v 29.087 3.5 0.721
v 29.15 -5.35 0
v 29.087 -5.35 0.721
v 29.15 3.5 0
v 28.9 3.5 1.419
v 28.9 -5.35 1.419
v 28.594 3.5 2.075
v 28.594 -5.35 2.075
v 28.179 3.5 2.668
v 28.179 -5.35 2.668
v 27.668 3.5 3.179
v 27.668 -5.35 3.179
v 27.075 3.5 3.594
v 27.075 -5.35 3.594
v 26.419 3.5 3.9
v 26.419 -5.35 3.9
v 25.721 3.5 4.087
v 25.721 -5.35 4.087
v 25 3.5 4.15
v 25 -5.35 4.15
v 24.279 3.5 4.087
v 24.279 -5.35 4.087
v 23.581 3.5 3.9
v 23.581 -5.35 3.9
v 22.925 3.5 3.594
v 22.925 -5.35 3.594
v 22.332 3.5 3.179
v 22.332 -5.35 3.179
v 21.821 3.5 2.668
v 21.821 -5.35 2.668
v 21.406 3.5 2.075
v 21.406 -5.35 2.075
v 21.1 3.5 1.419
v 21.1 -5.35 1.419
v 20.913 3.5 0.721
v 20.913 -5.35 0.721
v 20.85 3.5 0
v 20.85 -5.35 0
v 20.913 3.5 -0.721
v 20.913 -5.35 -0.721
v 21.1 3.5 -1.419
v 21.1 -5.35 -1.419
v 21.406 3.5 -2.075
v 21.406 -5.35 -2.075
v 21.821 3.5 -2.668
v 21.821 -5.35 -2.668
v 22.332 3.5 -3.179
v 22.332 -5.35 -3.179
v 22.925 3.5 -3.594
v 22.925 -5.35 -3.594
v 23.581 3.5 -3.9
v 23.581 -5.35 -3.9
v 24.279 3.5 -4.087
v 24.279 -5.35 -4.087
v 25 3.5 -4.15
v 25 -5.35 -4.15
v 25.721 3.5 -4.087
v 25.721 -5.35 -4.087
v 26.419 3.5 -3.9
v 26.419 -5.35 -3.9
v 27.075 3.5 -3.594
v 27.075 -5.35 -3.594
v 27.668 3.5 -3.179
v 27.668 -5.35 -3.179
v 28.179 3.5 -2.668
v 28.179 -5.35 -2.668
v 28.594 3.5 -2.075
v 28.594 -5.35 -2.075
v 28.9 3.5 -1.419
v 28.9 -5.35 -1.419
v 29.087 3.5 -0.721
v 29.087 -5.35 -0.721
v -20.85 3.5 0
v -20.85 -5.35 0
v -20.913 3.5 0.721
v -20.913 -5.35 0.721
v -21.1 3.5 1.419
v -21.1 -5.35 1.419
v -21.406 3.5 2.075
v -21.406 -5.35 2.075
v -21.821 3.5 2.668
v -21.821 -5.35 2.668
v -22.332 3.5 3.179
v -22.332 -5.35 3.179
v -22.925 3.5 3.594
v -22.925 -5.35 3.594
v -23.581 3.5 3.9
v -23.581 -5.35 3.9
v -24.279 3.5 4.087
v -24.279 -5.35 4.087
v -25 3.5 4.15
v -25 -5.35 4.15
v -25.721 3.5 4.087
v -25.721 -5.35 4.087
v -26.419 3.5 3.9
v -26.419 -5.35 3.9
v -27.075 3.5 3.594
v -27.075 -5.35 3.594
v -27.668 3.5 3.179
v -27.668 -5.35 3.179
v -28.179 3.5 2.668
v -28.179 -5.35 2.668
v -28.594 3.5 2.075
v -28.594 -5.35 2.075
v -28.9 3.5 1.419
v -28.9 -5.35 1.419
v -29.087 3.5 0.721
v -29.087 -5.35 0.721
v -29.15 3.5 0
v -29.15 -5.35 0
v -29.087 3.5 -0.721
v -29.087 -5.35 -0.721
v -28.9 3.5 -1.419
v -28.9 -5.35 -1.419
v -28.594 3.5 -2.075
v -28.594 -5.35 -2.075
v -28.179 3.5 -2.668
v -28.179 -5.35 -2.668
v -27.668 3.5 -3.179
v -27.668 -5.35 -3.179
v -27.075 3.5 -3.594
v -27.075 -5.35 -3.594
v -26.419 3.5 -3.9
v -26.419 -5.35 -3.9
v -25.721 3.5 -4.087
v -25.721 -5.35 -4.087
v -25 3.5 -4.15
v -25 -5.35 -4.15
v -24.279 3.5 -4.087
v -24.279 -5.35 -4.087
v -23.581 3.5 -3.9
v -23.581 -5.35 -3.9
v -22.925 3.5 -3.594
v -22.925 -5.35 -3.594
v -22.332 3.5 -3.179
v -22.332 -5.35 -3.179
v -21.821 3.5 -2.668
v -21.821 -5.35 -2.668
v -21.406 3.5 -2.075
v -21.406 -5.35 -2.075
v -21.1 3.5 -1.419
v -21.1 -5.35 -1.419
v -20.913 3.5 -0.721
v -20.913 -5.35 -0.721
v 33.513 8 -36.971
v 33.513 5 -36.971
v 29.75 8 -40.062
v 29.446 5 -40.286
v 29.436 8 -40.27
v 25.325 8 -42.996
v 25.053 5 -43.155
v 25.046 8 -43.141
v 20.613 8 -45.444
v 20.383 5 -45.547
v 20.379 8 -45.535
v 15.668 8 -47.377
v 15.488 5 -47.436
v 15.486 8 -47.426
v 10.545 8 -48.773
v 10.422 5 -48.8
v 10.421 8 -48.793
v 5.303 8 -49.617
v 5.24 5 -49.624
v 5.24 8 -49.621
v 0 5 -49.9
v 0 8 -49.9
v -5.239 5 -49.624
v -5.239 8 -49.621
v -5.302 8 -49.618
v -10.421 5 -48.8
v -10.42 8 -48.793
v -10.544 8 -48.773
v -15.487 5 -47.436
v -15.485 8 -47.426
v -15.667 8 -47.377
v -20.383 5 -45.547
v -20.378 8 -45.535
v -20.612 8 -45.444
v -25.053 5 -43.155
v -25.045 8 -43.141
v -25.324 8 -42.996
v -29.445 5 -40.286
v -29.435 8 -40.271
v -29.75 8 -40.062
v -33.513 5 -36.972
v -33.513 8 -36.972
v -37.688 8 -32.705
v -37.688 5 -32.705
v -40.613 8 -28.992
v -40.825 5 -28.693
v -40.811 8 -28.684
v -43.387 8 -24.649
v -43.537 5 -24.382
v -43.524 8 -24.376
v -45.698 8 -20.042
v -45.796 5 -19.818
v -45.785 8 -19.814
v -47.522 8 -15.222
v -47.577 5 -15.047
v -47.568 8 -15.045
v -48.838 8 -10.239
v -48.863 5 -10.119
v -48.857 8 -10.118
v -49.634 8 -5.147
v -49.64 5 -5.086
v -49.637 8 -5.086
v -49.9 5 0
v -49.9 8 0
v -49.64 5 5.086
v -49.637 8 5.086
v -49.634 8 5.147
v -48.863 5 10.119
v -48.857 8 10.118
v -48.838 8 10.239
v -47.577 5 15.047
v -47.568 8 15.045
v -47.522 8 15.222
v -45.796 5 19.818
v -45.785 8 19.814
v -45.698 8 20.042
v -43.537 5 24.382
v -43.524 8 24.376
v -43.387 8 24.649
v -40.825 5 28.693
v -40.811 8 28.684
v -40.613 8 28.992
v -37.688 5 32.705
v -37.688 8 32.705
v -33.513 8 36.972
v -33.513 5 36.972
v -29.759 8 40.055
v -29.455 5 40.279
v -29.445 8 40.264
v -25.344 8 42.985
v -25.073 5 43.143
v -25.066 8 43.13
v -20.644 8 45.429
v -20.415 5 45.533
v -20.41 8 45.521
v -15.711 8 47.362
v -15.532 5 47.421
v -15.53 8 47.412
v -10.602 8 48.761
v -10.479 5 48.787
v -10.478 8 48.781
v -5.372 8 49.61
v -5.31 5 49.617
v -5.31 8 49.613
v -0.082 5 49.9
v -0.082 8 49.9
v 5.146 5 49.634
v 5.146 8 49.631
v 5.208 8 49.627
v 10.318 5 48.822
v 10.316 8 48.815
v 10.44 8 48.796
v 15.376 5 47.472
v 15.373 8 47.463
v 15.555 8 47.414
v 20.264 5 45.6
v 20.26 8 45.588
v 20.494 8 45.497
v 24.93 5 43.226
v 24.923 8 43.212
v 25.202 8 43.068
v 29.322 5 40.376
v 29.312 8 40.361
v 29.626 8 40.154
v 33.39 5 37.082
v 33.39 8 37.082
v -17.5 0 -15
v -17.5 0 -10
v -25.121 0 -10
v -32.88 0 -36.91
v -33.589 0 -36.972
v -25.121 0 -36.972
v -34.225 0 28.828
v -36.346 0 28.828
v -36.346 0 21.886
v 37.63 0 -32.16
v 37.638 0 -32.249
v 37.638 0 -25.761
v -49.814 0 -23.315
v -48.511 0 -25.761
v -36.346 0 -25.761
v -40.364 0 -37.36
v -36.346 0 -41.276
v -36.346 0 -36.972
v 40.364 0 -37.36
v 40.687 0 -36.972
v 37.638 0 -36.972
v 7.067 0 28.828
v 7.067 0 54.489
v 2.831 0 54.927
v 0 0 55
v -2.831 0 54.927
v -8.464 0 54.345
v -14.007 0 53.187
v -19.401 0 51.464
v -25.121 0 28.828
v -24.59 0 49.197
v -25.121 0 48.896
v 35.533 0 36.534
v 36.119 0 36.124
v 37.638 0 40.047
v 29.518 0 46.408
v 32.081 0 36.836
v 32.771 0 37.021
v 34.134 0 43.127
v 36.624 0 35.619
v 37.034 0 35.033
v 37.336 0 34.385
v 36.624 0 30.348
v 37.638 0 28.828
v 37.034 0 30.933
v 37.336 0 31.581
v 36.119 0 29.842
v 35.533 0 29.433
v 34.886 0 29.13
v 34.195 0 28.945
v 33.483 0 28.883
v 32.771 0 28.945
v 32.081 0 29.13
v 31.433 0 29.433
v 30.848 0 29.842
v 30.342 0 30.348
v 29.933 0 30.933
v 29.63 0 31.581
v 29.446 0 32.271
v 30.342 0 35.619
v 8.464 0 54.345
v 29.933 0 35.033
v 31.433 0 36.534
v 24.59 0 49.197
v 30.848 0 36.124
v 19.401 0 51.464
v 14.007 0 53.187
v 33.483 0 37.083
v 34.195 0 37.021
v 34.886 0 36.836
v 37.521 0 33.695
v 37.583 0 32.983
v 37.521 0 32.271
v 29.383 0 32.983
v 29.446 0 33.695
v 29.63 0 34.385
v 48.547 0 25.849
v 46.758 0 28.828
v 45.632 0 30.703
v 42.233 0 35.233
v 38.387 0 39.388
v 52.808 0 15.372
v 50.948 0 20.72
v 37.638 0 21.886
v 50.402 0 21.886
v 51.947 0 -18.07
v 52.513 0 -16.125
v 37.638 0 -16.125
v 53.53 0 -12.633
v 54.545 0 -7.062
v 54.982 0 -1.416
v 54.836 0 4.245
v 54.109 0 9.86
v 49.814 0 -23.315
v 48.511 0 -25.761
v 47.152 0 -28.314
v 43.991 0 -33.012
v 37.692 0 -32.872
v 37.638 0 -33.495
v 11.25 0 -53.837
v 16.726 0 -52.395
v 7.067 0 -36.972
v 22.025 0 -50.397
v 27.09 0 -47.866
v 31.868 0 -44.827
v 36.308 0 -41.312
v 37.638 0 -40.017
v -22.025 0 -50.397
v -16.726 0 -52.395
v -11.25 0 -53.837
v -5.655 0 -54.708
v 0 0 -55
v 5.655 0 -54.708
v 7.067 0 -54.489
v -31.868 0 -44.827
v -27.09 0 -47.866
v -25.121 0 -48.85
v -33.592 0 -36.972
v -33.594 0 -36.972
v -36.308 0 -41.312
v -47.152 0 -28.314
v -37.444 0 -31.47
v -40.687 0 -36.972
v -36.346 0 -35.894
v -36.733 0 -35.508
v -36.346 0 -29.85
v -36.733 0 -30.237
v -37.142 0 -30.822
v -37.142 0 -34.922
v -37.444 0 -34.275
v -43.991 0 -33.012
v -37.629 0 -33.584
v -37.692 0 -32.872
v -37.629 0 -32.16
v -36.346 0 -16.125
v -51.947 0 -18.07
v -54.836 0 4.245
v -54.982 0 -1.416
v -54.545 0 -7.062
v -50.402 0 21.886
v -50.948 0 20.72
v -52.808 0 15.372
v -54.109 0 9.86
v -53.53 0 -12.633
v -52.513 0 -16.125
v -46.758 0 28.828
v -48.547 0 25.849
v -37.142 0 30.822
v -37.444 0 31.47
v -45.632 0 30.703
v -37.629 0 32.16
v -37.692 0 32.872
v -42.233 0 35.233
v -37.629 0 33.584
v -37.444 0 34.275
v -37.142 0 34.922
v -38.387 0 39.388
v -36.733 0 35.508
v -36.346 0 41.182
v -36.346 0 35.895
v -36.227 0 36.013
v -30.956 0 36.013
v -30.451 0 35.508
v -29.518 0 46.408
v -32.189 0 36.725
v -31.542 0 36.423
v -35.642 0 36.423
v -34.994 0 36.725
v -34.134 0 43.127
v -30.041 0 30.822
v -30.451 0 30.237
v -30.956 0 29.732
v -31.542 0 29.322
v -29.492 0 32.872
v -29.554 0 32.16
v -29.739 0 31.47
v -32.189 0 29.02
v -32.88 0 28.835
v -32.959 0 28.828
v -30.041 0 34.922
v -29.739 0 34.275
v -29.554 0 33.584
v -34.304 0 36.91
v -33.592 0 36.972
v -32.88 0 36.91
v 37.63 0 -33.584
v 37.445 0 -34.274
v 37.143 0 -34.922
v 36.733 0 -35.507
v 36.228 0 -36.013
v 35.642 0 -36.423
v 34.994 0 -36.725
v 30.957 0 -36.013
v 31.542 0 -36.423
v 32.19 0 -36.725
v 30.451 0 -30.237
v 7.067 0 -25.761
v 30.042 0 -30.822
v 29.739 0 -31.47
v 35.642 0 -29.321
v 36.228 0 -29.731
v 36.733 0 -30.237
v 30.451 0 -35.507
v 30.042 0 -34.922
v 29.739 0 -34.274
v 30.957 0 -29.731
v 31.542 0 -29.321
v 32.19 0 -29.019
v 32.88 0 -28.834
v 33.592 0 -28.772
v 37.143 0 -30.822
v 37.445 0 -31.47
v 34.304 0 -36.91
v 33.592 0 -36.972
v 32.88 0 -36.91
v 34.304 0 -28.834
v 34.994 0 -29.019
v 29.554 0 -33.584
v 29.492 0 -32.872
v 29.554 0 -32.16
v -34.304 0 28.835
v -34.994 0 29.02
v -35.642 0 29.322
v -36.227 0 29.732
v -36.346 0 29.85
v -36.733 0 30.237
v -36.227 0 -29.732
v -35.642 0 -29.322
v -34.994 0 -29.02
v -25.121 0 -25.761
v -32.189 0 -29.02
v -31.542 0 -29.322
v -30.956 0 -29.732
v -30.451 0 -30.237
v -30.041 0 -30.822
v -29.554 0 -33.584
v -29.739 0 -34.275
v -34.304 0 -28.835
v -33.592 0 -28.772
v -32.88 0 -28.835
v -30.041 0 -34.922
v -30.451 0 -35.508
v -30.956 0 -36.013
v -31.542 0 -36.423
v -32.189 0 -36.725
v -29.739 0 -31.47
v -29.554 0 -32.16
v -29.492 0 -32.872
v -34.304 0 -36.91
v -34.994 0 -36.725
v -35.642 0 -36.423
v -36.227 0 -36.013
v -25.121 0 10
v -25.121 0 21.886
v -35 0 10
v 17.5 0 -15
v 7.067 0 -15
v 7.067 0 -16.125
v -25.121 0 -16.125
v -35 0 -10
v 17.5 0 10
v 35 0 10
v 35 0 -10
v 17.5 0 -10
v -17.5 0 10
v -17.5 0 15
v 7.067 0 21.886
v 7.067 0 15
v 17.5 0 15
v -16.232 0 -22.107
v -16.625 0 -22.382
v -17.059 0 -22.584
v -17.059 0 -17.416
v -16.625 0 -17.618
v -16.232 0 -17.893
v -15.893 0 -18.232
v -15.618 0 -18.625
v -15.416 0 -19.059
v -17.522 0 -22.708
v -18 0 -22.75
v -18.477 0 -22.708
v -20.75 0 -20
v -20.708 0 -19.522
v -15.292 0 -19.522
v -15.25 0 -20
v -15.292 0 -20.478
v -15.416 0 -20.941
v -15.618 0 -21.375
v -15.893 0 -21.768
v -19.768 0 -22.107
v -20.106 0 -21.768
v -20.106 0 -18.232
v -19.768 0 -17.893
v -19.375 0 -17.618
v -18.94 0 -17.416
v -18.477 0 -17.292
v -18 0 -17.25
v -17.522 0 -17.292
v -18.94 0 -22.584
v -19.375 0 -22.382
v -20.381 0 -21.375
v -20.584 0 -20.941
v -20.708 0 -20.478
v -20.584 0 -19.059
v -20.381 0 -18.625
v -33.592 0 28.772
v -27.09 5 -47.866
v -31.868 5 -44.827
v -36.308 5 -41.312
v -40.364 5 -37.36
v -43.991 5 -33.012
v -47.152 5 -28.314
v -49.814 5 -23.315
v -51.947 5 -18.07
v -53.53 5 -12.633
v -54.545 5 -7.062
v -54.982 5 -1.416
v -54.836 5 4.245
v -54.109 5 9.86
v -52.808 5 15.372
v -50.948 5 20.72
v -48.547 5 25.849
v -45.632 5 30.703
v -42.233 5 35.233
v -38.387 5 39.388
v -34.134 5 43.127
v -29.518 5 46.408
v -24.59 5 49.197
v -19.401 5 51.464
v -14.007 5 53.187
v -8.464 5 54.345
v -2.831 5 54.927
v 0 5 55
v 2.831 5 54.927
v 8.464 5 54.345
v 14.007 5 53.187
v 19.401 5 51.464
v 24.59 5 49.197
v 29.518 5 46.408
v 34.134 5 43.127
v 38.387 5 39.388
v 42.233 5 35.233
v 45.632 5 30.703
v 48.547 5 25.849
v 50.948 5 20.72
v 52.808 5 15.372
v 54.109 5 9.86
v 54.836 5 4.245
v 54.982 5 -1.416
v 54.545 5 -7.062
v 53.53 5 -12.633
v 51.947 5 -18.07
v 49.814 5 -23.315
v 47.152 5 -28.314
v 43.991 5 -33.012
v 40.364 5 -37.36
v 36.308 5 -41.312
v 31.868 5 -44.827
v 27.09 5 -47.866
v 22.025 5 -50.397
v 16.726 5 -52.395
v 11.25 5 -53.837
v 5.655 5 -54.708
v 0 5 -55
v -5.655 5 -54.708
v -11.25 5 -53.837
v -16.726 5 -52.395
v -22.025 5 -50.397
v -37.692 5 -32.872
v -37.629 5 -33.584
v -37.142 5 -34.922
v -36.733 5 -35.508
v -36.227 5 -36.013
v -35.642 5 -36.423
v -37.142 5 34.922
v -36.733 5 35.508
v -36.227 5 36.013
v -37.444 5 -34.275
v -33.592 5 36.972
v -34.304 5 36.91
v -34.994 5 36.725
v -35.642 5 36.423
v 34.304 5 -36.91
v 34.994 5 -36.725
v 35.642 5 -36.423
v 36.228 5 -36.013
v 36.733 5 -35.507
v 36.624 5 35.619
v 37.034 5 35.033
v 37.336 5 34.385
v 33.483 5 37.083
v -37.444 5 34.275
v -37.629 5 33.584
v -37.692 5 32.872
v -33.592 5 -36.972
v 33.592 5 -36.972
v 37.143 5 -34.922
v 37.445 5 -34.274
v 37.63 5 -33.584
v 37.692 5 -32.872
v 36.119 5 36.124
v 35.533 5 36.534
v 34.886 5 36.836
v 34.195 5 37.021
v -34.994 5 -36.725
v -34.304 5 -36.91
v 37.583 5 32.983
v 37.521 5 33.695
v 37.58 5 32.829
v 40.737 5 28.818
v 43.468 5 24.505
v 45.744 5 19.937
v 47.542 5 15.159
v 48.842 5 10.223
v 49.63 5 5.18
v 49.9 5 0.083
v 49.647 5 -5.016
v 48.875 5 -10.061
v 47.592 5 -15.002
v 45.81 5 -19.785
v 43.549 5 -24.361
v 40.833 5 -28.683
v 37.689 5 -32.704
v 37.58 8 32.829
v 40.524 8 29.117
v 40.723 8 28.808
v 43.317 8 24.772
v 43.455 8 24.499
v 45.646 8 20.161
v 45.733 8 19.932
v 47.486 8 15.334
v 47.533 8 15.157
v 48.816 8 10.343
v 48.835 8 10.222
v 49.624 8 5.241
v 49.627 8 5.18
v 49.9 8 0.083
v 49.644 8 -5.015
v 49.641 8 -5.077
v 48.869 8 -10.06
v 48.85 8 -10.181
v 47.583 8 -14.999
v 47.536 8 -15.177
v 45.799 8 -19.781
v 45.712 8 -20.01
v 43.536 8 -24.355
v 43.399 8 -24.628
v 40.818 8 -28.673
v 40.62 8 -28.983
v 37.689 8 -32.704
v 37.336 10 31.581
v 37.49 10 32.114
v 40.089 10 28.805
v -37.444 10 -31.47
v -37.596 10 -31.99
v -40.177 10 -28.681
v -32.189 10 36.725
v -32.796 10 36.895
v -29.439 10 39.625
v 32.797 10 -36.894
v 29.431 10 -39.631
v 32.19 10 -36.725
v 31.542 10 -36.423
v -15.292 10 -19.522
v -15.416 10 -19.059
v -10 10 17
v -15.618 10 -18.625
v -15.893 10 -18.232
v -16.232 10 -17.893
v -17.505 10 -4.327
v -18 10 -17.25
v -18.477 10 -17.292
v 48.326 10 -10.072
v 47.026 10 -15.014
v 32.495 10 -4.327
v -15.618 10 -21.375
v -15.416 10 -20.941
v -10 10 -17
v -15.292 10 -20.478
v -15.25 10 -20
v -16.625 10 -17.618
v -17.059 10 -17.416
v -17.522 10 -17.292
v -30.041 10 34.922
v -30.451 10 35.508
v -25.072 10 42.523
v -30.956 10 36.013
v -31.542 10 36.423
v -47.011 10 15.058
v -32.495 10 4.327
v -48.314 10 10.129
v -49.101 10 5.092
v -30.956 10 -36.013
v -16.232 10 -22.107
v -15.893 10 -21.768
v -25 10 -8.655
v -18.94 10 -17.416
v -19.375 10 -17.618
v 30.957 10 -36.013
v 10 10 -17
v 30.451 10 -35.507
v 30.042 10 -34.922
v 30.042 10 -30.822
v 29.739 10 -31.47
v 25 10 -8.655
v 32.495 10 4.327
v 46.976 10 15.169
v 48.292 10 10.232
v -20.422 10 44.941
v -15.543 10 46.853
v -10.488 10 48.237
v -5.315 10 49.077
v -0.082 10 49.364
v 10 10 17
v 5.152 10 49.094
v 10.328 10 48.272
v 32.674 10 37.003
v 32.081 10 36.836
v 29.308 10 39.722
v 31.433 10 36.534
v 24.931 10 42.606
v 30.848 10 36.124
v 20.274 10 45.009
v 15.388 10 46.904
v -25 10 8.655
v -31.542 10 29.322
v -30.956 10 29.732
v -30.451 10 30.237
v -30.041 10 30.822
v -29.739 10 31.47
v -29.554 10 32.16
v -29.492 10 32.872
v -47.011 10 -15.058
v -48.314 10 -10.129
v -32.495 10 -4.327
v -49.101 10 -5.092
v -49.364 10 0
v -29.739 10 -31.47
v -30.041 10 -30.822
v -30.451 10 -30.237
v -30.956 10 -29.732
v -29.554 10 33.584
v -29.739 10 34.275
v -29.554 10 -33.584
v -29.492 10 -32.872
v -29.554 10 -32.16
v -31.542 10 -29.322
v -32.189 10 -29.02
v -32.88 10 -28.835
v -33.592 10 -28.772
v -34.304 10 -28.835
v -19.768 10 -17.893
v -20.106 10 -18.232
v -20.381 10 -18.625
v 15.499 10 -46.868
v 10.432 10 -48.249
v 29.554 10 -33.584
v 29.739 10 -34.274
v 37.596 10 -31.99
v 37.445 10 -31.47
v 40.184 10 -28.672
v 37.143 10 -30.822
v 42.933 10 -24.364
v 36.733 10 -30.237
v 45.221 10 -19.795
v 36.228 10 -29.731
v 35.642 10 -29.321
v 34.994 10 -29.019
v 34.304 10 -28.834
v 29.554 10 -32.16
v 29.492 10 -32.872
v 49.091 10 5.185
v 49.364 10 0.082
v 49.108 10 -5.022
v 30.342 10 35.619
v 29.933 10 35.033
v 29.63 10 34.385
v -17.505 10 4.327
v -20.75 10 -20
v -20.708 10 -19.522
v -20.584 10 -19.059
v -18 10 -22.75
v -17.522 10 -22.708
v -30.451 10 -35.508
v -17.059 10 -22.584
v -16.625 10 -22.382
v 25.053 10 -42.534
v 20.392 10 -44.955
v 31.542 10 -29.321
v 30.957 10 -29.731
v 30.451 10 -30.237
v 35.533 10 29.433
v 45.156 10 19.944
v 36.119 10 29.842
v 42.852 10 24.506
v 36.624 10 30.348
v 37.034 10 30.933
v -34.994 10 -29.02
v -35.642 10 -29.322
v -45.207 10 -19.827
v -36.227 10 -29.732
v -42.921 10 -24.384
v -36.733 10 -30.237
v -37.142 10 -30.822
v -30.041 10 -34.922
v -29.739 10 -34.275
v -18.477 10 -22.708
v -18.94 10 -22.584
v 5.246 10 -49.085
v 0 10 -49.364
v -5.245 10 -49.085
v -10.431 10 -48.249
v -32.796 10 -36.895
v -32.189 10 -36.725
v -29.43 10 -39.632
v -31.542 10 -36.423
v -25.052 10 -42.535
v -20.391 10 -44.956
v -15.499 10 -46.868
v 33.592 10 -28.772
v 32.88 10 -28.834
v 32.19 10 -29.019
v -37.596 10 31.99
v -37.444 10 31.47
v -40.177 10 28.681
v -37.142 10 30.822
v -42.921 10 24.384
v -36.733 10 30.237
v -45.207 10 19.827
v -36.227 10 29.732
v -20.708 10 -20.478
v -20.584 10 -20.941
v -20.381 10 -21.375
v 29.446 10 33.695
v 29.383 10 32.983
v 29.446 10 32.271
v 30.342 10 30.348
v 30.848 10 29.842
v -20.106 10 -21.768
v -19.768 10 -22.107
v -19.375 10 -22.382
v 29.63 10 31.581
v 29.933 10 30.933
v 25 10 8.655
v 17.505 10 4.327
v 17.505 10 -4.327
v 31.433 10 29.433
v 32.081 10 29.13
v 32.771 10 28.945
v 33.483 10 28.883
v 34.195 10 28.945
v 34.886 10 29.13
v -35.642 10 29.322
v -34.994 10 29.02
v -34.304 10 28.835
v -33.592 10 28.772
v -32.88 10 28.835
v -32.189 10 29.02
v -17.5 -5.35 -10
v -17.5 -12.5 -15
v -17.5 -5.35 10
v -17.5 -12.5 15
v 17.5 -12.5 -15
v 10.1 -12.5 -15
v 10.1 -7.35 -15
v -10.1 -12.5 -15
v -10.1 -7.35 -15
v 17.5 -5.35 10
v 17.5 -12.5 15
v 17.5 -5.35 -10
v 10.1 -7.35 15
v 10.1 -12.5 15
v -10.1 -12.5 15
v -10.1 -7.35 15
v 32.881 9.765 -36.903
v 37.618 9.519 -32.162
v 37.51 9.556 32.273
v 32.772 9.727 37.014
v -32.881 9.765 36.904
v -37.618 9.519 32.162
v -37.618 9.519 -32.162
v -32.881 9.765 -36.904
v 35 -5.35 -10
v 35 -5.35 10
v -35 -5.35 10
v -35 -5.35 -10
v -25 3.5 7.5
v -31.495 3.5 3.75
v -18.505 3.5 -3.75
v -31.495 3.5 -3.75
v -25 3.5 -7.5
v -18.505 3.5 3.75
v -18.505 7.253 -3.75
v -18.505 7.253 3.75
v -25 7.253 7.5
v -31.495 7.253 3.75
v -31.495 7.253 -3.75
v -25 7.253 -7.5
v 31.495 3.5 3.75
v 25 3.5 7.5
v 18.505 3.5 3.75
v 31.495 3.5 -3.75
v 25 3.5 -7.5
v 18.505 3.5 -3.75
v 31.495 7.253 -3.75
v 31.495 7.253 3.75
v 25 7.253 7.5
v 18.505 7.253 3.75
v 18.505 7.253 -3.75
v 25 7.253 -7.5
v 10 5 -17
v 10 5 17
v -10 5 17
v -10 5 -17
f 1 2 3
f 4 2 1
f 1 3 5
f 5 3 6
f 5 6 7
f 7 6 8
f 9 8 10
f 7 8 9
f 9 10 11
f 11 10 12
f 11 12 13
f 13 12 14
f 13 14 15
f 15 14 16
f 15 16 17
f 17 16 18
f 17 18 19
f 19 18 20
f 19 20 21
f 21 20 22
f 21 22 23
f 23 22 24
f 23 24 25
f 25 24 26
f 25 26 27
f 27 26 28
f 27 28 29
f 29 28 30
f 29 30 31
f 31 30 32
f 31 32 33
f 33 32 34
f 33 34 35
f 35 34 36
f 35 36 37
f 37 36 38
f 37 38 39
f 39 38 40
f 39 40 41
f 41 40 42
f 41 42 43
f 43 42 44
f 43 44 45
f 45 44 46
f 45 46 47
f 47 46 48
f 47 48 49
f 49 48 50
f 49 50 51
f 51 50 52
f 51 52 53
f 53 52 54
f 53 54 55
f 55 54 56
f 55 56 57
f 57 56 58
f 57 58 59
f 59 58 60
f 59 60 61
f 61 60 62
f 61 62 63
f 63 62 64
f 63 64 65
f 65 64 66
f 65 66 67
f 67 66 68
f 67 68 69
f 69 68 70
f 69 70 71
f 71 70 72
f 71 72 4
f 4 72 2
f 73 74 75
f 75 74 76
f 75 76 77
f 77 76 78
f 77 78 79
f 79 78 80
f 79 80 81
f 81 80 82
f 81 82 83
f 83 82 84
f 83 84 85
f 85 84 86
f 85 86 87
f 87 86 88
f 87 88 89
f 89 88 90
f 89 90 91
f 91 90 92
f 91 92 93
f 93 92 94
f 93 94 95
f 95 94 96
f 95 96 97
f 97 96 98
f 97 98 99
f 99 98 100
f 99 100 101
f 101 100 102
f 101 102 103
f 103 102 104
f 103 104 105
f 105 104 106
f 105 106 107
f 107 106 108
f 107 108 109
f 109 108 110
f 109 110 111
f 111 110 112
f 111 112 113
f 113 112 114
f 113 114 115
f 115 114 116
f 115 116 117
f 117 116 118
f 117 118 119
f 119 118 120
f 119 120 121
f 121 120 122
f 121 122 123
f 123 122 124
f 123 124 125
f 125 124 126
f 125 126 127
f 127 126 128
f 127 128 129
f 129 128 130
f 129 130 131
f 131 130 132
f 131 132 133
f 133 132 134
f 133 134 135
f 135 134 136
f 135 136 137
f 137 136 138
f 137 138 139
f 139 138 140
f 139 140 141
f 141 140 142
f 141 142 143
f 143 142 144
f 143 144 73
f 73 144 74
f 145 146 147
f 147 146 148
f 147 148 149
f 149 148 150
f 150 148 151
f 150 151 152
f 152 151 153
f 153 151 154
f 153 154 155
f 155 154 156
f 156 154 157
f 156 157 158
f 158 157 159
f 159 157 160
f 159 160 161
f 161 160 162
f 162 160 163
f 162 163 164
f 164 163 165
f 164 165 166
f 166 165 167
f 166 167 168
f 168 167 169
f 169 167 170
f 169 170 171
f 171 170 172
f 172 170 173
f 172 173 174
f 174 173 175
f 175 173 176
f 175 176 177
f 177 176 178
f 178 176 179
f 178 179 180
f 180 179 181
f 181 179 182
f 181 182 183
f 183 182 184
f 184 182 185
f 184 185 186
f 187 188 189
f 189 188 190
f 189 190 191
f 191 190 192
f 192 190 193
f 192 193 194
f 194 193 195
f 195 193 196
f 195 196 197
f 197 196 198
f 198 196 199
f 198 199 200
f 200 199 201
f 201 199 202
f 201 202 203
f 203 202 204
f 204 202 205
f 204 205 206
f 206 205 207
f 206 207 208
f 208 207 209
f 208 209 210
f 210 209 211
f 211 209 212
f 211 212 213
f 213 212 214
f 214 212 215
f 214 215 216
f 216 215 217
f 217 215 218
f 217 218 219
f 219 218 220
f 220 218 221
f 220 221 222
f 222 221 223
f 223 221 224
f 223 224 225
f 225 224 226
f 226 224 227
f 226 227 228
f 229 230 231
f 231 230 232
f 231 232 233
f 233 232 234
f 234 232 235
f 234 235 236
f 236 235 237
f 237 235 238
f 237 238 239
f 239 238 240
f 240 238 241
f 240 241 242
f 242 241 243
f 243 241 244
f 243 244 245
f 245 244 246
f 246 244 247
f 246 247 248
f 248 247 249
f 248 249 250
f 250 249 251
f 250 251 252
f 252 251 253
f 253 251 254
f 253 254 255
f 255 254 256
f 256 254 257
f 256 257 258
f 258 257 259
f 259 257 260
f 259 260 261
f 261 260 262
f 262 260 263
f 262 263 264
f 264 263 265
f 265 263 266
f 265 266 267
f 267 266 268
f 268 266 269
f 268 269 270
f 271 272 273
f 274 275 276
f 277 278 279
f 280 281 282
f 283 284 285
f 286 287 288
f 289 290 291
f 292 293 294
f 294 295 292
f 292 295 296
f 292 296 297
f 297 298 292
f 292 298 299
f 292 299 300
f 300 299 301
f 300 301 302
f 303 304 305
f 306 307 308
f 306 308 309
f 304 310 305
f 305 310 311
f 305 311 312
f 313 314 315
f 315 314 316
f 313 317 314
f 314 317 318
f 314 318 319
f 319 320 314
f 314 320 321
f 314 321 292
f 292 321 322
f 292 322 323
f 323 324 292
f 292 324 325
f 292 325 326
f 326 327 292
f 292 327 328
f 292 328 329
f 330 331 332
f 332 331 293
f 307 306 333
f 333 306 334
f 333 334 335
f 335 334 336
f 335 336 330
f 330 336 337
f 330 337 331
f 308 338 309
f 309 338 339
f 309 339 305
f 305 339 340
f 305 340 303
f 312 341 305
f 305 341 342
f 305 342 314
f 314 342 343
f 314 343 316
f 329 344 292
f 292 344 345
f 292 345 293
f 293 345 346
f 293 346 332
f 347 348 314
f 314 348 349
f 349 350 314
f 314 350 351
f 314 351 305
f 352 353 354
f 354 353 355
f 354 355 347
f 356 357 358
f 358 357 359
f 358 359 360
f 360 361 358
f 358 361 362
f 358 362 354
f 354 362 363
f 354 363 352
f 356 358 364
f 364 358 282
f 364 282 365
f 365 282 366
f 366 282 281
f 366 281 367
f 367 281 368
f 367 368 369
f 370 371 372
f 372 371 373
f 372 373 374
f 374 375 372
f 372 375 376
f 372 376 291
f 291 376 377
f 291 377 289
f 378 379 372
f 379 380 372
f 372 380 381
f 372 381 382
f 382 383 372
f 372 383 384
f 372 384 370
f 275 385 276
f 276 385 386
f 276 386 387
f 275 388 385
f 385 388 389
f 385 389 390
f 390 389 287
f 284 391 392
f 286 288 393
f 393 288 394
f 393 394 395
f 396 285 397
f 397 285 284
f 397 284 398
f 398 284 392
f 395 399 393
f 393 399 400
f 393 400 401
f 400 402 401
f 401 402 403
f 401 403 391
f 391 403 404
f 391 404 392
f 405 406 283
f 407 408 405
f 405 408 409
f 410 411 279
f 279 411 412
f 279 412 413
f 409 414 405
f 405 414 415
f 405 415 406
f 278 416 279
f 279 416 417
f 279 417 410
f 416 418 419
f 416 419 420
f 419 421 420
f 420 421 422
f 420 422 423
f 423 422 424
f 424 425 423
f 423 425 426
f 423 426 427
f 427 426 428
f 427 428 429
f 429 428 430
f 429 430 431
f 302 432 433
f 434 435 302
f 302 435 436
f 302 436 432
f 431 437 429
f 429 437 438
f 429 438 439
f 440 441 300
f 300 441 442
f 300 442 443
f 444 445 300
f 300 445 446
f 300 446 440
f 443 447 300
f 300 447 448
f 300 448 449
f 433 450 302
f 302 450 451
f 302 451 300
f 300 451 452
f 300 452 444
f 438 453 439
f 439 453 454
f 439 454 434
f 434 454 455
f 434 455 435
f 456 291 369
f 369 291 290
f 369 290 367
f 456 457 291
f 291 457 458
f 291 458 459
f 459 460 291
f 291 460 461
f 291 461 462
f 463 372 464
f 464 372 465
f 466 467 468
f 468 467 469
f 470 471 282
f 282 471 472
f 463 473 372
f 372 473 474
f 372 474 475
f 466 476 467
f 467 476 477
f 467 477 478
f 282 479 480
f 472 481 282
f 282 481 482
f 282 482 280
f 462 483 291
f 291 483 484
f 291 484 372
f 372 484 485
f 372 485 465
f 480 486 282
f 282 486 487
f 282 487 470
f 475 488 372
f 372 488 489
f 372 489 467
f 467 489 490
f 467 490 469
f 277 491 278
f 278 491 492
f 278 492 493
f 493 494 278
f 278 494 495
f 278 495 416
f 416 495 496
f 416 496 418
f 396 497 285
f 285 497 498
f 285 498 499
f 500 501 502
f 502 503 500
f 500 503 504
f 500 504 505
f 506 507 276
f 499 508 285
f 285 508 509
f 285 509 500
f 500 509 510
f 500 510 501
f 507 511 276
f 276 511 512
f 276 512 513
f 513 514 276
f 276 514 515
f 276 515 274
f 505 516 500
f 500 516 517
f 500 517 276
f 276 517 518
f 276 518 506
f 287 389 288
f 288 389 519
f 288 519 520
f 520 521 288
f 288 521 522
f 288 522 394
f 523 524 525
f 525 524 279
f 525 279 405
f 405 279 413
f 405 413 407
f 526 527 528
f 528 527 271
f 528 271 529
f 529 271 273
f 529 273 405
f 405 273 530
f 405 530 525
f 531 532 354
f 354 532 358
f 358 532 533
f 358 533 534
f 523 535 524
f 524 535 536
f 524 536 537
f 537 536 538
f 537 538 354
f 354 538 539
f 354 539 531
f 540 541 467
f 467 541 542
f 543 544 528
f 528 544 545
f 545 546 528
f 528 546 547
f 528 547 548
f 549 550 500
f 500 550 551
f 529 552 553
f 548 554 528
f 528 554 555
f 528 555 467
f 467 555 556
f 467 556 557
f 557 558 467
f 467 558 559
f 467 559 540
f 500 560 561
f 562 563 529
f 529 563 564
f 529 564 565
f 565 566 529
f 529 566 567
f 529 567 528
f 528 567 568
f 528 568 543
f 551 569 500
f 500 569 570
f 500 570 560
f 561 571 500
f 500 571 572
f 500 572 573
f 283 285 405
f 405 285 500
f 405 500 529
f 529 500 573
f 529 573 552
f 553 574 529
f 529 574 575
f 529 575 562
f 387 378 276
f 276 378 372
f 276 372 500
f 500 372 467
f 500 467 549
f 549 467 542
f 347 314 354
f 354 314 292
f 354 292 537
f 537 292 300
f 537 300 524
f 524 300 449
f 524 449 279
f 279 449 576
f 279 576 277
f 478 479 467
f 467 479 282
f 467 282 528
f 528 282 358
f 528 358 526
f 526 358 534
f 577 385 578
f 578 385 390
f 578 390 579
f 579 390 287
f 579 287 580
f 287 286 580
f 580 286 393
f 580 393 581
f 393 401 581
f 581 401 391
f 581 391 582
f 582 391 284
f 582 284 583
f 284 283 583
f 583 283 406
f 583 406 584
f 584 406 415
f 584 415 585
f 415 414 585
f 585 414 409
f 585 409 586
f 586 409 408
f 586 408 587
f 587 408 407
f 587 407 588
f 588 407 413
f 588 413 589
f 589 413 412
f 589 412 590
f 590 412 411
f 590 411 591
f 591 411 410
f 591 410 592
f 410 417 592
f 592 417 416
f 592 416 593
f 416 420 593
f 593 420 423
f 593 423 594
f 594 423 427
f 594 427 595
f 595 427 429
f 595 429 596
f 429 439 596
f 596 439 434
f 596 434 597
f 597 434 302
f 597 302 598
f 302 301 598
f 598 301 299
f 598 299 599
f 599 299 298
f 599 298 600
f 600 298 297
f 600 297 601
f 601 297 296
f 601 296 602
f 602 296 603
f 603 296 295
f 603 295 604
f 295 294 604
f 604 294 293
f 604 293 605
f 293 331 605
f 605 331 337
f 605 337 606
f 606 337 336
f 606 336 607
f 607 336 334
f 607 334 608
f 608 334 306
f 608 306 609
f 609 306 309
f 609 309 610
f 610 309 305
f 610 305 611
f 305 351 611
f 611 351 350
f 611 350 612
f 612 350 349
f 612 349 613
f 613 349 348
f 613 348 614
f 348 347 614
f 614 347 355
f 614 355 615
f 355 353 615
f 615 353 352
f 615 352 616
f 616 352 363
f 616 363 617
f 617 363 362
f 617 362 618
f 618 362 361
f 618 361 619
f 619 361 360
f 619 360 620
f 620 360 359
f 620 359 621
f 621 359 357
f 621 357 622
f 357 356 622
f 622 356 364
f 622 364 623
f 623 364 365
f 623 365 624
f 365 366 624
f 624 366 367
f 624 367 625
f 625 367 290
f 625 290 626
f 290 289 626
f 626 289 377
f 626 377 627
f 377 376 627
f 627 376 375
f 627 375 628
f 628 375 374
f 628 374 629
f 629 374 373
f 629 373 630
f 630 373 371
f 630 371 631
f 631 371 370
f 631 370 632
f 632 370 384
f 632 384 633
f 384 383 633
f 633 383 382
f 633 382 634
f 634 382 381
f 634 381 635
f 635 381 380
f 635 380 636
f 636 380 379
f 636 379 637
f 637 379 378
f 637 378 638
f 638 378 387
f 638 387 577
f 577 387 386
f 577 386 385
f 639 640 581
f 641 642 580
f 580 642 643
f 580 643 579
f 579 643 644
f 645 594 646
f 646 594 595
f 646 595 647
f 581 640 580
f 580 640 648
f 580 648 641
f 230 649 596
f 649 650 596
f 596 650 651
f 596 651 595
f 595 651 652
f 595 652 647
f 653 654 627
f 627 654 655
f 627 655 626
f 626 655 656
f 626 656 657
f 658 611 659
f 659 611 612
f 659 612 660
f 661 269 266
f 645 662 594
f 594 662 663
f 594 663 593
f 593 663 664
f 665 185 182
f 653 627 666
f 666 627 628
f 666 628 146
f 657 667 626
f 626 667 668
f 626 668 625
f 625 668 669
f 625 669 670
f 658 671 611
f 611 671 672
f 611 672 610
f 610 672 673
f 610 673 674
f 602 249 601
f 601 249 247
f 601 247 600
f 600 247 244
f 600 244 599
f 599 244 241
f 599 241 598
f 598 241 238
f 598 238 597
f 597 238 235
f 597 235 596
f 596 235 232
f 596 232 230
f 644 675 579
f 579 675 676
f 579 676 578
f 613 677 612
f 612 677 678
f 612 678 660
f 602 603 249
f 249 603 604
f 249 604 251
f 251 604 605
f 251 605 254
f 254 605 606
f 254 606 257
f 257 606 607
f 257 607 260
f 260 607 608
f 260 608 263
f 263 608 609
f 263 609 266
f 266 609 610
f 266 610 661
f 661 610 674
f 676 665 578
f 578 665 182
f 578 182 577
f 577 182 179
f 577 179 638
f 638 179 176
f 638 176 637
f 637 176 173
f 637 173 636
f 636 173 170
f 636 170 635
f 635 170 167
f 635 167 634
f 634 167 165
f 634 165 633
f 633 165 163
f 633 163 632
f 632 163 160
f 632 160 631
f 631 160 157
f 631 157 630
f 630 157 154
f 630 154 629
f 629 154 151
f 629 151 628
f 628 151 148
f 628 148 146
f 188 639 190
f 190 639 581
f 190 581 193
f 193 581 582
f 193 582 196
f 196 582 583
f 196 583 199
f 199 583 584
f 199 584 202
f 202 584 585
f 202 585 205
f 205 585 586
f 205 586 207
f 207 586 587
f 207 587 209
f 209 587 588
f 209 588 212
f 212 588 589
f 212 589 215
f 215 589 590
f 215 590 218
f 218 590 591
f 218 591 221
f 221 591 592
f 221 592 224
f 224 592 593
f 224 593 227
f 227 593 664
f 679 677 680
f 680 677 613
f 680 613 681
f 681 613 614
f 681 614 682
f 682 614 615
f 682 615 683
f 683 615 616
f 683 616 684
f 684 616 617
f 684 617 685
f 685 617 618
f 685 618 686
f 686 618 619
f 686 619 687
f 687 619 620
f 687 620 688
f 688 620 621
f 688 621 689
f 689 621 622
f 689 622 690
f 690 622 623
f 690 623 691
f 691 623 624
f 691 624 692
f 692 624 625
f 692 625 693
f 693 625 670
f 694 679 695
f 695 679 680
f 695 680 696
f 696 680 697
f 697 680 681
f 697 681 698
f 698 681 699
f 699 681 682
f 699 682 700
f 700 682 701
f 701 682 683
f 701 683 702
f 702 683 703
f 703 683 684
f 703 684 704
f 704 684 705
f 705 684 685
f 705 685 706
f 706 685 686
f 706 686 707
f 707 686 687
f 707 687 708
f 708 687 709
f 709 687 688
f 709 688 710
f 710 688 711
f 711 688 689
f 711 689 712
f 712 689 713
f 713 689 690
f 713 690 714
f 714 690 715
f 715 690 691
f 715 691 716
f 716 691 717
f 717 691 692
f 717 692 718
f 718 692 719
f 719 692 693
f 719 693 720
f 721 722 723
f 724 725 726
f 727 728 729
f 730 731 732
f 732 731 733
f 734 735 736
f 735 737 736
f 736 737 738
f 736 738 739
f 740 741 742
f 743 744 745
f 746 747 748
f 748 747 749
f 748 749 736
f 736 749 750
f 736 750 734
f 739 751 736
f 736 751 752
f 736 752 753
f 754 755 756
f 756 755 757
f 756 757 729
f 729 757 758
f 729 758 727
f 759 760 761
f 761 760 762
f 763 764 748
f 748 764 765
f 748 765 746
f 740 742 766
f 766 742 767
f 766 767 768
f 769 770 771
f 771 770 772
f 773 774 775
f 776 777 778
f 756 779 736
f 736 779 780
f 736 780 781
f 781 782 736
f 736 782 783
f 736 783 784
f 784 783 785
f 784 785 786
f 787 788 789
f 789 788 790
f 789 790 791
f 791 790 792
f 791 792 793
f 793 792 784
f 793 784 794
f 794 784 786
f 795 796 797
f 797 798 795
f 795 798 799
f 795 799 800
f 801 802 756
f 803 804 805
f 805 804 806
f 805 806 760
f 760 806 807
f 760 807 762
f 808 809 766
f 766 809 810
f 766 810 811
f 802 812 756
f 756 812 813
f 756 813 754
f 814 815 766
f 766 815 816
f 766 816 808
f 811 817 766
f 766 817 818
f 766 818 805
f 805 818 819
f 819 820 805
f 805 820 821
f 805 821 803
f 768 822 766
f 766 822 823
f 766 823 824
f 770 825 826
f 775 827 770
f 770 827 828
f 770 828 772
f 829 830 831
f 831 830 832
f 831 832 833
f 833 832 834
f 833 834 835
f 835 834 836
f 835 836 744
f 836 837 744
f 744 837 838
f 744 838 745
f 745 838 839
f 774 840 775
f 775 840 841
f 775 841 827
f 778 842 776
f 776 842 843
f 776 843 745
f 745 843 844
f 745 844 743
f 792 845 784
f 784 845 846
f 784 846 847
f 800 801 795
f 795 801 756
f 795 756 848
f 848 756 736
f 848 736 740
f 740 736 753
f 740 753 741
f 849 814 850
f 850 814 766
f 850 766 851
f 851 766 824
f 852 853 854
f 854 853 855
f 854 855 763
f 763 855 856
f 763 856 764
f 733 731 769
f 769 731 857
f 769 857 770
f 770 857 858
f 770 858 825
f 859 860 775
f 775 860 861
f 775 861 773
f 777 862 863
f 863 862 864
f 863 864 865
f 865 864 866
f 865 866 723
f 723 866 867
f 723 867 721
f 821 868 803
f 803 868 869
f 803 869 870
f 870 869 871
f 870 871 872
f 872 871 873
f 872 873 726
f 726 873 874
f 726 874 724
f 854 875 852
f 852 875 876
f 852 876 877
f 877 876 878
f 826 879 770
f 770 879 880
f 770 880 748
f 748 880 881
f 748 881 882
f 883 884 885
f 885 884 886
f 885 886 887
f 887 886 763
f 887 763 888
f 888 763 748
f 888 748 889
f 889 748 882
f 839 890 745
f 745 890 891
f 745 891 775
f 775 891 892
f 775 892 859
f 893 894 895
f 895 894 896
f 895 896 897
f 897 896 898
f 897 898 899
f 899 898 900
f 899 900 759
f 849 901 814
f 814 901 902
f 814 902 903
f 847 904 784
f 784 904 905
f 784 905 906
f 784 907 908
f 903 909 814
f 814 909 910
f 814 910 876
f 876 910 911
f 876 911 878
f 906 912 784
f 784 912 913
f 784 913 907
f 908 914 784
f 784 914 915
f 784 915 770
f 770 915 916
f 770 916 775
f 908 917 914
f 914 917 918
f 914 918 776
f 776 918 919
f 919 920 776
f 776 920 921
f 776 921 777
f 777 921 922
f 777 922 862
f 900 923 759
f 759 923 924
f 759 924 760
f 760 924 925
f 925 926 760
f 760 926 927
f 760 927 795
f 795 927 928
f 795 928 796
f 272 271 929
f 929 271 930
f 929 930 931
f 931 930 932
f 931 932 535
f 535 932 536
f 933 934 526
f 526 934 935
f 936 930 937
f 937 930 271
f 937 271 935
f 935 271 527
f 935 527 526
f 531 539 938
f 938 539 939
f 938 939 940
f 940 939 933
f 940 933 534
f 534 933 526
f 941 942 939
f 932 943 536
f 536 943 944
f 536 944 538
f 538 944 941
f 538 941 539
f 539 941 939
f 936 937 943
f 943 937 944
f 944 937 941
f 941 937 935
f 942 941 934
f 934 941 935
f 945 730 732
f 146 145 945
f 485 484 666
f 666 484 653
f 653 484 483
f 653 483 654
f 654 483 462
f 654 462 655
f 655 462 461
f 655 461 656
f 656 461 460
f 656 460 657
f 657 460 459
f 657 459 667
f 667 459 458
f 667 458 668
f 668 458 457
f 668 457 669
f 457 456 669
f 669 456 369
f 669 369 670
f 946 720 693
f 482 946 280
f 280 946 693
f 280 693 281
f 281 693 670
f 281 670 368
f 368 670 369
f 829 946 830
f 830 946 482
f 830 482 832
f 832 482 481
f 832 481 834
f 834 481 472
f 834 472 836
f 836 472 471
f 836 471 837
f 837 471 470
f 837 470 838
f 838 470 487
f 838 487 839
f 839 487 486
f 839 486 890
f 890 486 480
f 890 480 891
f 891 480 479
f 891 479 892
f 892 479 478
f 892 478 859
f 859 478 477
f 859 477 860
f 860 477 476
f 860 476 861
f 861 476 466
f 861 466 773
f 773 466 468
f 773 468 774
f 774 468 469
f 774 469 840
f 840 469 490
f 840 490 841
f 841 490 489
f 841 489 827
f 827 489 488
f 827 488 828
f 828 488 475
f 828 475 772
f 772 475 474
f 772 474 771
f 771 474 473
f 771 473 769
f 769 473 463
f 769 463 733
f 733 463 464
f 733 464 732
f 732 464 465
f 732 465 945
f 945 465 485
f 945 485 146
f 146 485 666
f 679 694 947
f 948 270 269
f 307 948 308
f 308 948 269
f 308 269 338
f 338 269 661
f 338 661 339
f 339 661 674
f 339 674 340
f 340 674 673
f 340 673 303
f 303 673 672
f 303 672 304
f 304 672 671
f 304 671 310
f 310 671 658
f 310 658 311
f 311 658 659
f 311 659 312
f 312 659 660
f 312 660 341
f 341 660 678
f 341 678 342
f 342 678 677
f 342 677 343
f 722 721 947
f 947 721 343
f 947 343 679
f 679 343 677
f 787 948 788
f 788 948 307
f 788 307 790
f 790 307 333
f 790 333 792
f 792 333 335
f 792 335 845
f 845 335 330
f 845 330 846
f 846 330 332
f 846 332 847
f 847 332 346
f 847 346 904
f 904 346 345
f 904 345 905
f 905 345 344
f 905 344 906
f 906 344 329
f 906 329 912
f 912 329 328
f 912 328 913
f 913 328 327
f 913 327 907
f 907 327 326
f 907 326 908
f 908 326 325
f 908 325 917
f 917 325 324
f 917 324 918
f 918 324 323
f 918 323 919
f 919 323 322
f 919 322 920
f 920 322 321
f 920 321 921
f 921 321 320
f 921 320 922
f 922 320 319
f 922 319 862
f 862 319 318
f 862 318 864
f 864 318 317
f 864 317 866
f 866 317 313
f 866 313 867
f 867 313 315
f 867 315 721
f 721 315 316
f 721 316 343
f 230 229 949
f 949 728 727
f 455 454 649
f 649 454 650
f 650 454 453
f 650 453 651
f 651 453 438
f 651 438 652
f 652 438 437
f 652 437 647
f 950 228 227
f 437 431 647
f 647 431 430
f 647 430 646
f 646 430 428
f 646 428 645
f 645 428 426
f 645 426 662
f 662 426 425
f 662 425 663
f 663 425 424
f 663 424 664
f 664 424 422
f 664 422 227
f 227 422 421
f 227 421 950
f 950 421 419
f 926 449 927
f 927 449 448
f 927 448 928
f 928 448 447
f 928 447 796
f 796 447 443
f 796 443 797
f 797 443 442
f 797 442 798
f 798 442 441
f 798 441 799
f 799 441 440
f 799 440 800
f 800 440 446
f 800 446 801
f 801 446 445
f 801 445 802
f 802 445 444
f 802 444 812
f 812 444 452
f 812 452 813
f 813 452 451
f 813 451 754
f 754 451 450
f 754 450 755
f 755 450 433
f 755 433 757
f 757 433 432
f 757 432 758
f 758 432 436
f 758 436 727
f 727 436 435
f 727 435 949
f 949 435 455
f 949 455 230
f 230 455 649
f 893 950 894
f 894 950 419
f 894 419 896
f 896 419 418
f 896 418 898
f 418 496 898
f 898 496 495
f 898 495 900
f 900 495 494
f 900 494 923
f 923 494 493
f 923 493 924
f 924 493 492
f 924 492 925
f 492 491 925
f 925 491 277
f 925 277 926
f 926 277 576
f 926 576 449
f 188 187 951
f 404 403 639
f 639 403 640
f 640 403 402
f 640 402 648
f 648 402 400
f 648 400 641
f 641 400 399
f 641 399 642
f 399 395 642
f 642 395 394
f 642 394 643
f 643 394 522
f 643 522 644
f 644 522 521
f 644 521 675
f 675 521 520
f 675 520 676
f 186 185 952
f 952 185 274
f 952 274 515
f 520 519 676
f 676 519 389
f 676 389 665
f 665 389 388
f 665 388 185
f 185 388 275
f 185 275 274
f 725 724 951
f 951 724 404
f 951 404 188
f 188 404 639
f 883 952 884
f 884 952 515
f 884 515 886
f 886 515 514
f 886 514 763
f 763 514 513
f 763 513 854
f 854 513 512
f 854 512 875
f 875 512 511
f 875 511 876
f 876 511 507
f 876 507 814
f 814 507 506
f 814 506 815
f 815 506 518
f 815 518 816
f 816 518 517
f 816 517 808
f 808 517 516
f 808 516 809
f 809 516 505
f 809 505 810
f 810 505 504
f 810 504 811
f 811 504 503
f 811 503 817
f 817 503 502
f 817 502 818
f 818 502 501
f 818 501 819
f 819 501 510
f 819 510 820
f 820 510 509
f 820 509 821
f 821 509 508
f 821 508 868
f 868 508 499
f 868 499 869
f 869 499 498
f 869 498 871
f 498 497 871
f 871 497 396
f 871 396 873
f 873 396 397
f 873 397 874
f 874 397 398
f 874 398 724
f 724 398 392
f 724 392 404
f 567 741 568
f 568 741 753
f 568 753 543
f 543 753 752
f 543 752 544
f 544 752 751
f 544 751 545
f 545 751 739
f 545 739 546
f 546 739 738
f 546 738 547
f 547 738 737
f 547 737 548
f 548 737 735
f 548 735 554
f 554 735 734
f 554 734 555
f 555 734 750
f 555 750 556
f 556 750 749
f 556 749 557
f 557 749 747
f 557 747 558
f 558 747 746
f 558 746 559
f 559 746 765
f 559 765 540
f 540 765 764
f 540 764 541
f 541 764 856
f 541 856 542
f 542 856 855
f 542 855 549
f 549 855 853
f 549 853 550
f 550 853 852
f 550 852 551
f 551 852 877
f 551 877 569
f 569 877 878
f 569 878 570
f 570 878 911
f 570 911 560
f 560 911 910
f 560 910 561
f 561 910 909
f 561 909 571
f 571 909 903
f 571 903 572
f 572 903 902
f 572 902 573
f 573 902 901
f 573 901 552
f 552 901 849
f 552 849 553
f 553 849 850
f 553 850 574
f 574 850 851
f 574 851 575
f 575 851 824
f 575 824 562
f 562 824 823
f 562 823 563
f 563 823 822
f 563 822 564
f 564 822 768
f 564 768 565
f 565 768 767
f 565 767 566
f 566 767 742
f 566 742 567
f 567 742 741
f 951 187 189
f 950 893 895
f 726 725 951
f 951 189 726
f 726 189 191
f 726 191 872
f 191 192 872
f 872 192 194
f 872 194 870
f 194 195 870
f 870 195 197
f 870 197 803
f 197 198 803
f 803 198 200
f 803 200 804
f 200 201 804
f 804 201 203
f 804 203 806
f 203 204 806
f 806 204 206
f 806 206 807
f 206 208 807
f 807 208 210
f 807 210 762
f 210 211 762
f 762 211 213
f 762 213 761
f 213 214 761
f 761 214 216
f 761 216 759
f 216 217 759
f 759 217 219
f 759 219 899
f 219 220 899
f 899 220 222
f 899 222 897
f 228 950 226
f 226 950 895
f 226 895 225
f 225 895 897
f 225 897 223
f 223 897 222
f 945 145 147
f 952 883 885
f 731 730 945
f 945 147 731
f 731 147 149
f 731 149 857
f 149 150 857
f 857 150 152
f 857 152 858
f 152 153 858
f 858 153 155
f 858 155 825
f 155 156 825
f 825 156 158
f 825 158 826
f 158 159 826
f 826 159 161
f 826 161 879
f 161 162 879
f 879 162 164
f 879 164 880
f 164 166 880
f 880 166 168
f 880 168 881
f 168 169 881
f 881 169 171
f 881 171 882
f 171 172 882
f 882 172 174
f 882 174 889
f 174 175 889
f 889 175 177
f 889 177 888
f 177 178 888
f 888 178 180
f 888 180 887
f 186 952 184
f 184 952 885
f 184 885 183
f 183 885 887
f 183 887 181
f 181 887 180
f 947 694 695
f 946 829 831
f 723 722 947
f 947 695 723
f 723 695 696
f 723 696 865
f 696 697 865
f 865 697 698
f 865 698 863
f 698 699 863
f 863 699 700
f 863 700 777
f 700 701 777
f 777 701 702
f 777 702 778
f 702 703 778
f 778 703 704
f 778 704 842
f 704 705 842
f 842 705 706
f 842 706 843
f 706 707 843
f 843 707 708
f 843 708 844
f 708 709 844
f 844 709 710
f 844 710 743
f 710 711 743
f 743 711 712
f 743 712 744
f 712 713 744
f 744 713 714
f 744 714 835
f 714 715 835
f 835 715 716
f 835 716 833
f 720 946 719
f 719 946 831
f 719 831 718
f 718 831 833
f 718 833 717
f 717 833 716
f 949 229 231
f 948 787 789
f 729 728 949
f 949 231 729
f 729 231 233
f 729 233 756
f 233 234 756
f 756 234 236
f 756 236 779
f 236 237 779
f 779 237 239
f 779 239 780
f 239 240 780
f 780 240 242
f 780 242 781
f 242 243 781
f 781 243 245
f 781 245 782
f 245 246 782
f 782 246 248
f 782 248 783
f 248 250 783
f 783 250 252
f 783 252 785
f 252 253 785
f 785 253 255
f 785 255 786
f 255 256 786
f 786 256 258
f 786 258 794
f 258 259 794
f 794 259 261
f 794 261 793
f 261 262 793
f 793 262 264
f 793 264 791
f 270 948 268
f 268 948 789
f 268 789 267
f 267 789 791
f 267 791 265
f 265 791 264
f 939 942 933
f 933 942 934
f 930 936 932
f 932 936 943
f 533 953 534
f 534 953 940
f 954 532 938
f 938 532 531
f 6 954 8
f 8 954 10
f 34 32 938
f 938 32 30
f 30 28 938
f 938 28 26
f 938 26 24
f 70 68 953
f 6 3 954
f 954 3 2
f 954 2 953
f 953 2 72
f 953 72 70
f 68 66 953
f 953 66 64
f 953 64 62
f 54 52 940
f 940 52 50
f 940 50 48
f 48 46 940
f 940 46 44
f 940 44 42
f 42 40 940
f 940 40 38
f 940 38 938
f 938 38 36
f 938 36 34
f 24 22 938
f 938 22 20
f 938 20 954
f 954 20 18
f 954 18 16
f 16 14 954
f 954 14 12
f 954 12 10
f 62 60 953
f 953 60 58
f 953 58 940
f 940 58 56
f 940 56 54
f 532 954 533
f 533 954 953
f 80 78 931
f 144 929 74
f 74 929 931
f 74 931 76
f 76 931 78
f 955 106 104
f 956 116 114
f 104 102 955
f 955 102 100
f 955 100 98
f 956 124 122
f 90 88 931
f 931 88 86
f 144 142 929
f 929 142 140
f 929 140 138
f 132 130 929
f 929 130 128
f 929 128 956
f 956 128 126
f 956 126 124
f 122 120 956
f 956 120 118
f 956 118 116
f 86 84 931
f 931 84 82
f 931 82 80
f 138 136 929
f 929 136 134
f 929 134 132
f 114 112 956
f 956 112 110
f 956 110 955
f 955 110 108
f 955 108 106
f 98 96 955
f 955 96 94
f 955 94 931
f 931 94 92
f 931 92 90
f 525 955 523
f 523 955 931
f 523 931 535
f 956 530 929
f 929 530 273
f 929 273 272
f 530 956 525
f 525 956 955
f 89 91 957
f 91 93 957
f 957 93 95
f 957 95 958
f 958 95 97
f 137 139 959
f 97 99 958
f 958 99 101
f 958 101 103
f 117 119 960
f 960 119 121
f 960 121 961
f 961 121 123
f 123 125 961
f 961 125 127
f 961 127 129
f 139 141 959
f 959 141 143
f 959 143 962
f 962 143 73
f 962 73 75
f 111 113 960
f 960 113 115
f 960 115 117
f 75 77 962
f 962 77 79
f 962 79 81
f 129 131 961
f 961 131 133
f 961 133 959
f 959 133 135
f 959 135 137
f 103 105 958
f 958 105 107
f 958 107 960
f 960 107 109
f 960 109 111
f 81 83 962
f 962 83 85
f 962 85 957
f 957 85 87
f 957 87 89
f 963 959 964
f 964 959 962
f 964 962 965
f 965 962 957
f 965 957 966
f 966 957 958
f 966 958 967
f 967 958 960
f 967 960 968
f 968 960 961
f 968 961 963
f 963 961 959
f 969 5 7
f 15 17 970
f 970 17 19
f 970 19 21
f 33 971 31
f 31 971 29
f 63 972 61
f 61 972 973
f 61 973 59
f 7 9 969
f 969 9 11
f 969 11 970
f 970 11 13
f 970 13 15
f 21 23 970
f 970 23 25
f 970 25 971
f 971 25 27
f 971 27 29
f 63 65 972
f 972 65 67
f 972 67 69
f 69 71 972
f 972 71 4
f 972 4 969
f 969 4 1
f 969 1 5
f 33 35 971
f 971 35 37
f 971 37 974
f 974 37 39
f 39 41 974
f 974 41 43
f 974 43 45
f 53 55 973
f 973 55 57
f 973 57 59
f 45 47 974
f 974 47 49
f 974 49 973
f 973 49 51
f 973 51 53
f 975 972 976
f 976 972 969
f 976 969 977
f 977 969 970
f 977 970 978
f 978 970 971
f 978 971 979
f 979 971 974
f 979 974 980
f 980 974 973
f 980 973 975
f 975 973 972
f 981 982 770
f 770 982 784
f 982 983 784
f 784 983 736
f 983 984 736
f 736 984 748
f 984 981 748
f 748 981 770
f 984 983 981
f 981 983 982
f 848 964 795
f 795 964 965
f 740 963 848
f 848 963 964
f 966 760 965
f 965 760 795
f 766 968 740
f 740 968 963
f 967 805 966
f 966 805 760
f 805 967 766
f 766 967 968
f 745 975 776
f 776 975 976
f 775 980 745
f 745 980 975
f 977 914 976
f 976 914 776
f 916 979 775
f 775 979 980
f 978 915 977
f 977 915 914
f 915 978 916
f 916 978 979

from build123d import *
from OCP.BRepFilletAPI import BRepFilletAPI_MakeChamfer

# Parameters (mm, degrees)
SKETCH_1_R          = 55
EXTRUDE_1_DEPTH     = 5
SKETCH_2_R          = 49.9
EXTRUDE_2_DEPTH     = 5
SKETCH_3_W          = 35
SKETCH_3_H          = 30
EXTRUDE_3_DEPTH     = 25
SKETCH_4_W          = 20.2
SKETCH_4_H          = 10.3
CUT_EXTRUDE_1_DEPTH = 93.466210045
SKETCH_5_R          = 4.1
CUT_EXTRUDE_2_DEPTH = 82.700673192
SKETCH_6_R          = 2.75
CUT_EXTRUDE_3_DEPTH = 86.293610546
CHAMFER1_SIZE       = 2
CHAMFER1_SIZE2      = 0.535898385
SKETCH2_W           = 35
SKETCH2_H           = 30
CUT_EXTRUDE1_DEPTH  = 12.5
BOSS_EXTRUDE1_START = -2
SKETCH4_W           = 70
SKETCH4_H           = 20
BOSS_EXTRUDE1_DEPTH = 5.35
SKETCH5_R           = 4.15
CUT_EXTRUDE2_DEPTH  = 80.281917882
CUT_EXTRUDE3_DEPTH  = 6.5
SKETCH7_W           = 20
SKETCH7_H           = 34
CUT_EXTRUDE4_DEPTH  = 5
CHAMFER2_SIZE       = 1
CHAMFER2_SIZE2      = 2.747477419


with BuildPart() as part:
    # Эскиз1 → Бобышка-Вытянуть1 (new body)
    with BuildSketch(Plane(origin=(0, 0, 0), x_dir=(1, 0, 0), z_dir=(0, 1, 0))):
        with Locations(Location((0, 0, 0), (0, 0, 270))):
            Circle(SKETCH_1_R)
    extrude(amount=EXTRUDE_1_DEPTH)

    # Эскиз2 → Бобышка-Вытянуть2 (add)
    with BuildSketch(Plane(origin=(0, 5, 0), x_dir=(1, 0, 0), z_dir=(0, 1, 0))):
        with Locations(Location((0, 0, 0), (0, 0, 270))):
            Circle(SKETCH_2_R)
    extrude(amount=EXTRUDE_2_DEPTH)

    # Эскиз3 → Бобышка-Вытянуть3 (add)
    with BuildSketch(Plane.XZ):
        Rectangle(SKETCH_3_W, SKETCH_3_H)
    extrude(amount=EXTRUDE_3_DEPTH)

    # Эскиз4 → Вырез-Вытянуть1 (cut, through all)
    with BuildSketch(Plane.XY.offset(15)):
        with Locations((0, -12.5)):
            Rectangle(SKETCH_4_W, SKETCH_4_H)
    extrude(amount=-CUT_EXTRUDE_1_DEPTH, mode=Mode.SUBTRACT)

    # Эскиз5 → Вырез-Вытянуть2 (cut, through all)
    with BuildSketch(Plane.XZ):
        with Locations(Location((33.592198598, -32.871936263, 0), (0, 0, 270))):
            Circle(SKETCH_5_R)
        with Locations(Location((-33.591727056, -32.872418125, 0), (0, 0, 270))):
            Circle(SKETCH_5_R)
        with Locations(Location((-33.591727056, 32.872418125, 0), (0, 0, 270))):
            Circle(SKETCH_5_R)
        with Locations(Location((33.483215177, 32.983215177, 0), (0, 0, 270))):
            Circle(SKETCH_5_R)
    extrude(amount=-CUT_EXTRUDE_2_DEPTH, mode=Mode.SUBTRACT)

    # Эскиз6 → Вырез-Вытянуть3 (cut, through all)
    with BuildSketch(Plane(origin=(0, 10, 0), x_dir=(1, 0, 0), z_dir=(0, 1, 0))):
        with Locations(Location((-17.999856554, 19.999999999, 0), (0, 0, 270))):
            Circle(SKETCH_6_R)
    extrude(amount=-CUT_EXTRUDE_3_DEPTH, mode=Mode.SUBTRACT)

    # Chamfer1: one chamfer whose edges measure the first distance from different faces: ONE call of the kernel's chamfer builder (chamfer() names one face for all edges)
    chamfer1_edges_1 = [part.edges().sort_by_distance(p)[0] for p in [
        (0.000357897, 10, -49.899999999),
    ]]
    chamfer1_side_1 = [part.faces().sort_by_distance(p)[0] for p in [
        (0.000357897, 7.5, -49.899999999),
    ]]
    chamfer1_edges_2 = [part.edges().sort_by_distance(p)[0] for p in [
        (-49.9, 10, 0),
    ]]
    chamfer1_side_2 = [part.faces().sort_by_distance(p)[0] for p in [
        (-49.9, 7.5, 0),
    ]]
    chamfer1_edges_3 = [part.edges().sort_by_distance(p)[0] for p in [
        (-0.08242255, 10, 49.899931929),
    ]]
    chamfer1_side_3 = [part.faces().sort_by_distance(p)[0] for p in [
        (-0.08242255, 7.5, 49.899931929),
    ]]
    chamfer1_edges_4 = [part.edges().sort_by_distance(p)[0] for p in [
        (49.899931657, 10, 0.082587101),
    ]]
    chamfer1_side_4 = [part.faces().sort_by_distance(p)[0] for p in [
        (49.899931657, 7.5, 0.082587101),
    ]]
    chamfer1 = BRepFilletAPI_MakeChamfer(part.part.solid().wrapped)
    for e in chamfer1_edges_1:
        chamfer1.Add(CHAMFER1_SIZE, CHAMFER1_SIZE2, e.wrapped, chamfer1_side_1[0].wrapped)  # the first distance lies on this face
    for e in chamfer1_edges_2:
        chamfer1.Add(CHAMFER1_SIZE, CHAMFER1_SIZE2, e.wrapped, chamfer1_side_2[0].wrapped)  # the first distance lies on this face
    for e in chamfer1_edges_3:
        chamfer1.Add(CHAMFER1_SIZE, CHAMFER1_SIZE2, e.wrapped, chamfer1_side_3[0].wrapped)  # the first distance lies on this face
    for e in chamfer1_edges_4:
        chamfer1.Add(CHAMFER1_SIZE, CHAMFER1_SIZE2, e.wrapped, chamfer1_side_4[0].wrapped)  # the first distance lies on this face
    add(Compound.cast(chamfer1.Shape()), mode=Mode.REPLACE)

    # Sketch2 → Cut-Extrude1 (cut)
    with BuildSketch(Plane.XZ.offset(25)):
        Rectangle(SKETCH2_W, SKETCH2_H)
    extrude(amount=-CUT_EXTRUDE1_DEPTH, mode=Mode.SUBTRACT)

    # Sketch4 → Boss-Extrude1 (add)
    with BuildSketch(Plane.XZ.offset(7.35).offset(BOSS_EXTRUDE1_START)):
        Rectangle(SKETCH4_W, SKETCH4_H)
    extrude(amount=-BOSS_EXTRUDE1_DEPTH)

    # Sketch5 → Cut-Extrude2 (cut, through all)
    with BuildSketch(Plane.XZ.offset(5.35)):
        with Locations((25, 0)):
            Circle(SKETCH5_R)
        with Locations((-25, 0)):
            Circle(SKETCH5_R)
    extrude(amount=-CUT_EXTRUDE2_DEPTH, mode=Mode.SUBTRACT)

    # Sketch6 → Cut-Extrude3 (cut)
    with BuildSketch(Plane(origin=(0, 10, 0), x_dir=(1, 0, 0), z_dir=(0, 1, 0))):
        Polygon((-18.504809472, 3.75), (-25, 7.5), (-31.495190528, 3.75), (-31.495190528, -3.75), (-25, -7.5), (-18.504809472, -3.75), align=None)
        Polygon((31.495190528, 3.75), (25, 7.5), (18.504809472, 3.75), (18.504809472, -3.75), (25, -7.5), (31.495190528, -3.75), align=None)
    extrude(amount=-CUT_EXTRUDE3_DEPTH, mode=Mode.SUBTRACT)

    # Sketch7 → Cut-Extrude4 (cut)
    with BuildSketch(Plane(origin=(0, 10, 0), x_dir=(1, 0, 0), z_dir=(0, 1, 0))):
        Rectangle(SKETCH7_W, SKETCH7_H)
    extrude(amount=-CUT_EXTRUDE4_DEPTH, mode=Mode.SUBTRACT)

    # Chamfer2
    chamfer2_edges = [part.edges().sort_by_distance(p)[0] for p in [
        (-18.504809472, 10, 0),
        (-21.752404736, 10, -5.625),
        (-28.247595264, 10, -5.625),
        (-31.495190528, 10, 0),
        (-28.247595264, 10, 5.625),
        (-21.752404736, 10, 5.625),
        (31.495190528, 10, 0),
        (28.247595264, 10, -5.625),
        (21.752404736, 10, -5.625),
        (18.504809472, 10, 0),
        (21.752404736, 10, 5.625),
        (28.247595264, 10, 5.625),
    ]]
    chamfer2_side = [part.faces().sort_by_distance(p)[0] for p in [
        (-28.121658773, 10, 32.336814493),
    ]]
    chamfer(chamfer2_edges, length=CHAMFER2_SIZE, length2=CHAMFER2_SIZE2, reference=chamfer2_side[0])


solid = part.part
